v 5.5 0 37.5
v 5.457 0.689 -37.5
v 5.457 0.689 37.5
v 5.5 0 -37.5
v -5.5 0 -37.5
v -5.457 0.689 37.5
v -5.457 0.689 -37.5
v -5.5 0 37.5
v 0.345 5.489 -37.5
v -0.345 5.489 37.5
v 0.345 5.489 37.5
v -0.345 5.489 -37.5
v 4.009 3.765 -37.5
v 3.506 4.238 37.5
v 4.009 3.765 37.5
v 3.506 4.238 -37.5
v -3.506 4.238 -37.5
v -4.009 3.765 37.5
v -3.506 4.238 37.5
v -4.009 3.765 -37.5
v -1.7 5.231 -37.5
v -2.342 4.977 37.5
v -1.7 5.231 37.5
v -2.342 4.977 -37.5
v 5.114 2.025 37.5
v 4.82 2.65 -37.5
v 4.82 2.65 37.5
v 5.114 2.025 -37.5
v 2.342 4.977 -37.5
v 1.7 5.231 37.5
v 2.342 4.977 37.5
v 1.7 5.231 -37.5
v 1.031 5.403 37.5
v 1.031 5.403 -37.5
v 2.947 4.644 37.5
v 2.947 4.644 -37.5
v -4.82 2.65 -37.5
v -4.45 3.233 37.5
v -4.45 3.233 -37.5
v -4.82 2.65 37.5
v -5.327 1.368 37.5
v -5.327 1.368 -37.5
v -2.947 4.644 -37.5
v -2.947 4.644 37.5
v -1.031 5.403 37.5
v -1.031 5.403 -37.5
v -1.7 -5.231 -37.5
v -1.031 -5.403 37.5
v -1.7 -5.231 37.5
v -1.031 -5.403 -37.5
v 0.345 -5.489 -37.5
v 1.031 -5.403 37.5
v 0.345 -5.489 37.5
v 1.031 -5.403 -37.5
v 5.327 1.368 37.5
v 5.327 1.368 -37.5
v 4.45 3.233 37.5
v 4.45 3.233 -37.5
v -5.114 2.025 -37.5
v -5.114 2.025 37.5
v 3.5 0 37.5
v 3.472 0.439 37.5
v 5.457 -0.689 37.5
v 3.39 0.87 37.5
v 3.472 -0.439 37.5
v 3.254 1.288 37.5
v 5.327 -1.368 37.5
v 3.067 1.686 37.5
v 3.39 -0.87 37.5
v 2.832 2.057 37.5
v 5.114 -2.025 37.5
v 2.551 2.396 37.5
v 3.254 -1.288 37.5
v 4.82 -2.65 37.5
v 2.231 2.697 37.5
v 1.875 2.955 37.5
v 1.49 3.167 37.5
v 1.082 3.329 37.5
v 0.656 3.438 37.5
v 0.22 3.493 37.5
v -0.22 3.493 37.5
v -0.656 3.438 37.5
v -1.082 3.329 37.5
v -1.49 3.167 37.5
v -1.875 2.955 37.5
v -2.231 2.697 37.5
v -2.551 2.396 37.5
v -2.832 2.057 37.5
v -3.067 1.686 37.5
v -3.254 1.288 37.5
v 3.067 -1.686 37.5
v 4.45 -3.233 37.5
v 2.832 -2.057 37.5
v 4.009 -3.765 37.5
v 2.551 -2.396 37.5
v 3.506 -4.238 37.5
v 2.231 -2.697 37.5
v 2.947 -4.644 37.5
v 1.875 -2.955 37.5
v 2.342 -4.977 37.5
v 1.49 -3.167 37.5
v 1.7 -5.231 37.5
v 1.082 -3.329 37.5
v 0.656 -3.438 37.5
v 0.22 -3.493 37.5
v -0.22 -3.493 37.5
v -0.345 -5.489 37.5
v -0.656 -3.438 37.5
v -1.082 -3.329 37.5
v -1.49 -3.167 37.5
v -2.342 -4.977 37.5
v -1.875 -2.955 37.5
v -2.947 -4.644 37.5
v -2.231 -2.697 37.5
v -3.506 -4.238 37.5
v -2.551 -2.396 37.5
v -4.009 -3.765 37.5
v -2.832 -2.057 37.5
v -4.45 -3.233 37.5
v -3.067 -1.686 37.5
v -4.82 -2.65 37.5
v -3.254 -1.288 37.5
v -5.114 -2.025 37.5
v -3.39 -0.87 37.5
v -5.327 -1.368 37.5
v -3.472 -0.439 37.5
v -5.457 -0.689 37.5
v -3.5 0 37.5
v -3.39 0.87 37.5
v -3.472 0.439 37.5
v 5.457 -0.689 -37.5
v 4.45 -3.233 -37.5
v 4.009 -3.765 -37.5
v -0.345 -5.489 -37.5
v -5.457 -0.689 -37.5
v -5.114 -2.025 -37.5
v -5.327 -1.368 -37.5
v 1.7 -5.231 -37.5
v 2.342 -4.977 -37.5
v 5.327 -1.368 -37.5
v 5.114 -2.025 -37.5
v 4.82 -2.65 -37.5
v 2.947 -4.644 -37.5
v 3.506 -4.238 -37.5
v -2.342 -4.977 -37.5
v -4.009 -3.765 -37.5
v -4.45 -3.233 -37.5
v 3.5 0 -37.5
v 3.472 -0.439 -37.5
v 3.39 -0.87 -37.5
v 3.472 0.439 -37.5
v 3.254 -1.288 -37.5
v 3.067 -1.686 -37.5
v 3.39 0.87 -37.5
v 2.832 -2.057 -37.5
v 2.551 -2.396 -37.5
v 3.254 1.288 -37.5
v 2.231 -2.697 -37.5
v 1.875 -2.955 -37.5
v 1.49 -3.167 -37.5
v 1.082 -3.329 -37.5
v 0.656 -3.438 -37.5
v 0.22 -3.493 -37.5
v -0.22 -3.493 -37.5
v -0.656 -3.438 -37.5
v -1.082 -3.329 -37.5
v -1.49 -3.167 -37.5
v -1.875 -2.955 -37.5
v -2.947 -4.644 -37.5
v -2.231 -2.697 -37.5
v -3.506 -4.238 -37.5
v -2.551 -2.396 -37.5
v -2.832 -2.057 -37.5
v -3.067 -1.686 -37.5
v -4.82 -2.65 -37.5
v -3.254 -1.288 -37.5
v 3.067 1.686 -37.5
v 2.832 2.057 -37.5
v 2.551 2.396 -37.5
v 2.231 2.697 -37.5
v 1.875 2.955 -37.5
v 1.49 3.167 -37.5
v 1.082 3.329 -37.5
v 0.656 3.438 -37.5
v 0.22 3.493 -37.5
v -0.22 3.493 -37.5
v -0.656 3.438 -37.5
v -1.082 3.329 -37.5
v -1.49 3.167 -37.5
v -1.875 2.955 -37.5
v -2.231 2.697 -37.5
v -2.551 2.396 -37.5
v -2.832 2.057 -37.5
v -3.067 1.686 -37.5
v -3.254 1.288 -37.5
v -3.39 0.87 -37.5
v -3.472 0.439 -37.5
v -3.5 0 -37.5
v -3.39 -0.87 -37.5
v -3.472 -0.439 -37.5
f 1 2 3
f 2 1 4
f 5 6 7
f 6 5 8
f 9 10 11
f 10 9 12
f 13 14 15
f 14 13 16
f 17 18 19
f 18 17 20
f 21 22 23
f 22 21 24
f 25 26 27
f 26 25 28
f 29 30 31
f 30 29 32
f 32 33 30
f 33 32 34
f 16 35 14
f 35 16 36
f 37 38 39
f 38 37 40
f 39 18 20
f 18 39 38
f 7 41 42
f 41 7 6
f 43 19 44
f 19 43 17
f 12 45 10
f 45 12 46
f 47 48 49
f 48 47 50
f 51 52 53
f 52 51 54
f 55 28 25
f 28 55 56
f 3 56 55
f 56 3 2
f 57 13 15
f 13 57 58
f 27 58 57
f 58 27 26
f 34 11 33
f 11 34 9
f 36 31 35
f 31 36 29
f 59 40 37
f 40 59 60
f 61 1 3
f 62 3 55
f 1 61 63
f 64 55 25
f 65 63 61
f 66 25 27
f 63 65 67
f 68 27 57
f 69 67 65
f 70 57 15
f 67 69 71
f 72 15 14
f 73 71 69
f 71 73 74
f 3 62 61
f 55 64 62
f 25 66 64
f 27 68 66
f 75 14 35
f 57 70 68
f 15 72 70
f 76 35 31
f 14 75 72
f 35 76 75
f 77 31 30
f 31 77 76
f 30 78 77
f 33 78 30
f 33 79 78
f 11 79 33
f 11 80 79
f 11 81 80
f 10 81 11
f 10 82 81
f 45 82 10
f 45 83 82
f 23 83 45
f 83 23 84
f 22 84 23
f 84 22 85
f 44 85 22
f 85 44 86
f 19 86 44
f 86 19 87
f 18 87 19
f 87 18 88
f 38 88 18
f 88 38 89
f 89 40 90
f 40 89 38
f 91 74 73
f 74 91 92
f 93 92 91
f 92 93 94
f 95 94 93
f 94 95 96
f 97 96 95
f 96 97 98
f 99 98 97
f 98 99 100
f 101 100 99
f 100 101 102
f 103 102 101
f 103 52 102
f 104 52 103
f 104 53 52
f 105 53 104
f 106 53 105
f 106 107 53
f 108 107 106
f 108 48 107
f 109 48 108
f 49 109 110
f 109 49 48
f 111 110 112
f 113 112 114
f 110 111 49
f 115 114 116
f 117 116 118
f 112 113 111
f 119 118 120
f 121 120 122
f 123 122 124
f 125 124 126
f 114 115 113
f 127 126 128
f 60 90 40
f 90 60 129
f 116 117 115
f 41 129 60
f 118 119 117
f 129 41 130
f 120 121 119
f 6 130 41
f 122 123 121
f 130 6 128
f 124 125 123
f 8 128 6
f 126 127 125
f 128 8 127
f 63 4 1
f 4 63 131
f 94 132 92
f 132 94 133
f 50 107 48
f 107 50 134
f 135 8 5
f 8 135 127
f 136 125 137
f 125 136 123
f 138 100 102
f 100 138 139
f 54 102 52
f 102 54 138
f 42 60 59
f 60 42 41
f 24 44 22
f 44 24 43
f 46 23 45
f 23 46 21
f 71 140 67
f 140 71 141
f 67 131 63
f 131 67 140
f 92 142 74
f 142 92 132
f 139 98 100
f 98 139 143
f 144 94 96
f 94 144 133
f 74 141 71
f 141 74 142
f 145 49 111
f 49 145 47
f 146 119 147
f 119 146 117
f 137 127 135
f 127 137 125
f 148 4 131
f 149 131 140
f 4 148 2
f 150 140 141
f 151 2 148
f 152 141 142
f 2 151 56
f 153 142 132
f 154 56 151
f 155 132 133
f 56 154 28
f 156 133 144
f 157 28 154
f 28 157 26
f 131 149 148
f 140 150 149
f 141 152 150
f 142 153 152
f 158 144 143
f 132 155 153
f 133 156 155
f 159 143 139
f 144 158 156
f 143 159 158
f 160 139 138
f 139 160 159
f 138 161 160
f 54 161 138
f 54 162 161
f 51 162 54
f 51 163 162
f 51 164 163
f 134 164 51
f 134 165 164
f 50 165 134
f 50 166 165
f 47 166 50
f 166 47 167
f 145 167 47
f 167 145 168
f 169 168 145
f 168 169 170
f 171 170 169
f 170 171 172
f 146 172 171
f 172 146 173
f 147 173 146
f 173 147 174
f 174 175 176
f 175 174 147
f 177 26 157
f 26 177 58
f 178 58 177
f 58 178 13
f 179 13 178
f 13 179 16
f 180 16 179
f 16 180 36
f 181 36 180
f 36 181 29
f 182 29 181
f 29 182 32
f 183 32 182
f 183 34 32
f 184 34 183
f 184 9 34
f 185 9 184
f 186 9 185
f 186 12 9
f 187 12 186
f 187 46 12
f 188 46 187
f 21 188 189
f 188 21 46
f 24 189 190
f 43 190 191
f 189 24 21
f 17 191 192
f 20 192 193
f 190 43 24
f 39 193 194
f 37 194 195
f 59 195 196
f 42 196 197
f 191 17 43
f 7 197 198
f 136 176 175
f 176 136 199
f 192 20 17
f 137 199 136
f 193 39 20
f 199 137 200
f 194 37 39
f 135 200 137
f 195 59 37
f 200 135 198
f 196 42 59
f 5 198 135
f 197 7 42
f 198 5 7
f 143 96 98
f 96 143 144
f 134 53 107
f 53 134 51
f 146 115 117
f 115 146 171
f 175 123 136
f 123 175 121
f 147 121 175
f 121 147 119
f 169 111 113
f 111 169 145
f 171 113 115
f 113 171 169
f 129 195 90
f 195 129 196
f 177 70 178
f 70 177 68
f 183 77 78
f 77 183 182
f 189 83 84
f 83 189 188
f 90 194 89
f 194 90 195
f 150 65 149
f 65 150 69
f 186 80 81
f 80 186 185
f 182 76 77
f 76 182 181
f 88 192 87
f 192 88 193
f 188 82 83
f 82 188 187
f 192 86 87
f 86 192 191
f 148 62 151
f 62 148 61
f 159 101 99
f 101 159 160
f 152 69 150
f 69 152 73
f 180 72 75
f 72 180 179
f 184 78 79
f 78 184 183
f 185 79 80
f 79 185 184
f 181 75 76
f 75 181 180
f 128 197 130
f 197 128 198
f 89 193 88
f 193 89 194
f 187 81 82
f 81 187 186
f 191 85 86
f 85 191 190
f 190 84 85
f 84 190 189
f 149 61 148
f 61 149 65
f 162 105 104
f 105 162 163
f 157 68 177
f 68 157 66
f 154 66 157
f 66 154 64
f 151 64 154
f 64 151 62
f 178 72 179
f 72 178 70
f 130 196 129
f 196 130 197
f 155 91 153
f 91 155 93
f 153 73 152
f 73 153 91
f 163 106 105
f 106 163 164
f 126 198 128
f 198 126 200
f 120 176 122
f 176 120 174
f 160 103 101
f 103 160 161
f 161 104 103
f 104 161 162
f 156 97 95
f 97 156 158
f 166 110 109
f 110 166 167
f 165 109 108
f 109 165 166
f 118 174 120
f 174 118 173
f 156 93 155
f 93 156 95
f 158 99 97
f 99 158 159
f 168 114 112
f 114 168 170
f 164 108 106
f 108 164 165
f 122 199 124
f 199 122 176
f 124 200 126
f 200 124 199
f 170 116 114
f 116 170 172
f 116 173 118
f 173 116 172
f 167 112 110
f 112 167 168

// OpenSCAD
$fn = 50;


difference() {
	union() {
		translate(v = [0, 0, -37.5000000000]) {
			cylinder(h = 75, r = 5.5000000000);
		}
	}
	union() {
		translate(v = [0, 0, -100.0000000000]) {
			cylinder(h = 200, r = 3.5000000000);
		}
	}
}
